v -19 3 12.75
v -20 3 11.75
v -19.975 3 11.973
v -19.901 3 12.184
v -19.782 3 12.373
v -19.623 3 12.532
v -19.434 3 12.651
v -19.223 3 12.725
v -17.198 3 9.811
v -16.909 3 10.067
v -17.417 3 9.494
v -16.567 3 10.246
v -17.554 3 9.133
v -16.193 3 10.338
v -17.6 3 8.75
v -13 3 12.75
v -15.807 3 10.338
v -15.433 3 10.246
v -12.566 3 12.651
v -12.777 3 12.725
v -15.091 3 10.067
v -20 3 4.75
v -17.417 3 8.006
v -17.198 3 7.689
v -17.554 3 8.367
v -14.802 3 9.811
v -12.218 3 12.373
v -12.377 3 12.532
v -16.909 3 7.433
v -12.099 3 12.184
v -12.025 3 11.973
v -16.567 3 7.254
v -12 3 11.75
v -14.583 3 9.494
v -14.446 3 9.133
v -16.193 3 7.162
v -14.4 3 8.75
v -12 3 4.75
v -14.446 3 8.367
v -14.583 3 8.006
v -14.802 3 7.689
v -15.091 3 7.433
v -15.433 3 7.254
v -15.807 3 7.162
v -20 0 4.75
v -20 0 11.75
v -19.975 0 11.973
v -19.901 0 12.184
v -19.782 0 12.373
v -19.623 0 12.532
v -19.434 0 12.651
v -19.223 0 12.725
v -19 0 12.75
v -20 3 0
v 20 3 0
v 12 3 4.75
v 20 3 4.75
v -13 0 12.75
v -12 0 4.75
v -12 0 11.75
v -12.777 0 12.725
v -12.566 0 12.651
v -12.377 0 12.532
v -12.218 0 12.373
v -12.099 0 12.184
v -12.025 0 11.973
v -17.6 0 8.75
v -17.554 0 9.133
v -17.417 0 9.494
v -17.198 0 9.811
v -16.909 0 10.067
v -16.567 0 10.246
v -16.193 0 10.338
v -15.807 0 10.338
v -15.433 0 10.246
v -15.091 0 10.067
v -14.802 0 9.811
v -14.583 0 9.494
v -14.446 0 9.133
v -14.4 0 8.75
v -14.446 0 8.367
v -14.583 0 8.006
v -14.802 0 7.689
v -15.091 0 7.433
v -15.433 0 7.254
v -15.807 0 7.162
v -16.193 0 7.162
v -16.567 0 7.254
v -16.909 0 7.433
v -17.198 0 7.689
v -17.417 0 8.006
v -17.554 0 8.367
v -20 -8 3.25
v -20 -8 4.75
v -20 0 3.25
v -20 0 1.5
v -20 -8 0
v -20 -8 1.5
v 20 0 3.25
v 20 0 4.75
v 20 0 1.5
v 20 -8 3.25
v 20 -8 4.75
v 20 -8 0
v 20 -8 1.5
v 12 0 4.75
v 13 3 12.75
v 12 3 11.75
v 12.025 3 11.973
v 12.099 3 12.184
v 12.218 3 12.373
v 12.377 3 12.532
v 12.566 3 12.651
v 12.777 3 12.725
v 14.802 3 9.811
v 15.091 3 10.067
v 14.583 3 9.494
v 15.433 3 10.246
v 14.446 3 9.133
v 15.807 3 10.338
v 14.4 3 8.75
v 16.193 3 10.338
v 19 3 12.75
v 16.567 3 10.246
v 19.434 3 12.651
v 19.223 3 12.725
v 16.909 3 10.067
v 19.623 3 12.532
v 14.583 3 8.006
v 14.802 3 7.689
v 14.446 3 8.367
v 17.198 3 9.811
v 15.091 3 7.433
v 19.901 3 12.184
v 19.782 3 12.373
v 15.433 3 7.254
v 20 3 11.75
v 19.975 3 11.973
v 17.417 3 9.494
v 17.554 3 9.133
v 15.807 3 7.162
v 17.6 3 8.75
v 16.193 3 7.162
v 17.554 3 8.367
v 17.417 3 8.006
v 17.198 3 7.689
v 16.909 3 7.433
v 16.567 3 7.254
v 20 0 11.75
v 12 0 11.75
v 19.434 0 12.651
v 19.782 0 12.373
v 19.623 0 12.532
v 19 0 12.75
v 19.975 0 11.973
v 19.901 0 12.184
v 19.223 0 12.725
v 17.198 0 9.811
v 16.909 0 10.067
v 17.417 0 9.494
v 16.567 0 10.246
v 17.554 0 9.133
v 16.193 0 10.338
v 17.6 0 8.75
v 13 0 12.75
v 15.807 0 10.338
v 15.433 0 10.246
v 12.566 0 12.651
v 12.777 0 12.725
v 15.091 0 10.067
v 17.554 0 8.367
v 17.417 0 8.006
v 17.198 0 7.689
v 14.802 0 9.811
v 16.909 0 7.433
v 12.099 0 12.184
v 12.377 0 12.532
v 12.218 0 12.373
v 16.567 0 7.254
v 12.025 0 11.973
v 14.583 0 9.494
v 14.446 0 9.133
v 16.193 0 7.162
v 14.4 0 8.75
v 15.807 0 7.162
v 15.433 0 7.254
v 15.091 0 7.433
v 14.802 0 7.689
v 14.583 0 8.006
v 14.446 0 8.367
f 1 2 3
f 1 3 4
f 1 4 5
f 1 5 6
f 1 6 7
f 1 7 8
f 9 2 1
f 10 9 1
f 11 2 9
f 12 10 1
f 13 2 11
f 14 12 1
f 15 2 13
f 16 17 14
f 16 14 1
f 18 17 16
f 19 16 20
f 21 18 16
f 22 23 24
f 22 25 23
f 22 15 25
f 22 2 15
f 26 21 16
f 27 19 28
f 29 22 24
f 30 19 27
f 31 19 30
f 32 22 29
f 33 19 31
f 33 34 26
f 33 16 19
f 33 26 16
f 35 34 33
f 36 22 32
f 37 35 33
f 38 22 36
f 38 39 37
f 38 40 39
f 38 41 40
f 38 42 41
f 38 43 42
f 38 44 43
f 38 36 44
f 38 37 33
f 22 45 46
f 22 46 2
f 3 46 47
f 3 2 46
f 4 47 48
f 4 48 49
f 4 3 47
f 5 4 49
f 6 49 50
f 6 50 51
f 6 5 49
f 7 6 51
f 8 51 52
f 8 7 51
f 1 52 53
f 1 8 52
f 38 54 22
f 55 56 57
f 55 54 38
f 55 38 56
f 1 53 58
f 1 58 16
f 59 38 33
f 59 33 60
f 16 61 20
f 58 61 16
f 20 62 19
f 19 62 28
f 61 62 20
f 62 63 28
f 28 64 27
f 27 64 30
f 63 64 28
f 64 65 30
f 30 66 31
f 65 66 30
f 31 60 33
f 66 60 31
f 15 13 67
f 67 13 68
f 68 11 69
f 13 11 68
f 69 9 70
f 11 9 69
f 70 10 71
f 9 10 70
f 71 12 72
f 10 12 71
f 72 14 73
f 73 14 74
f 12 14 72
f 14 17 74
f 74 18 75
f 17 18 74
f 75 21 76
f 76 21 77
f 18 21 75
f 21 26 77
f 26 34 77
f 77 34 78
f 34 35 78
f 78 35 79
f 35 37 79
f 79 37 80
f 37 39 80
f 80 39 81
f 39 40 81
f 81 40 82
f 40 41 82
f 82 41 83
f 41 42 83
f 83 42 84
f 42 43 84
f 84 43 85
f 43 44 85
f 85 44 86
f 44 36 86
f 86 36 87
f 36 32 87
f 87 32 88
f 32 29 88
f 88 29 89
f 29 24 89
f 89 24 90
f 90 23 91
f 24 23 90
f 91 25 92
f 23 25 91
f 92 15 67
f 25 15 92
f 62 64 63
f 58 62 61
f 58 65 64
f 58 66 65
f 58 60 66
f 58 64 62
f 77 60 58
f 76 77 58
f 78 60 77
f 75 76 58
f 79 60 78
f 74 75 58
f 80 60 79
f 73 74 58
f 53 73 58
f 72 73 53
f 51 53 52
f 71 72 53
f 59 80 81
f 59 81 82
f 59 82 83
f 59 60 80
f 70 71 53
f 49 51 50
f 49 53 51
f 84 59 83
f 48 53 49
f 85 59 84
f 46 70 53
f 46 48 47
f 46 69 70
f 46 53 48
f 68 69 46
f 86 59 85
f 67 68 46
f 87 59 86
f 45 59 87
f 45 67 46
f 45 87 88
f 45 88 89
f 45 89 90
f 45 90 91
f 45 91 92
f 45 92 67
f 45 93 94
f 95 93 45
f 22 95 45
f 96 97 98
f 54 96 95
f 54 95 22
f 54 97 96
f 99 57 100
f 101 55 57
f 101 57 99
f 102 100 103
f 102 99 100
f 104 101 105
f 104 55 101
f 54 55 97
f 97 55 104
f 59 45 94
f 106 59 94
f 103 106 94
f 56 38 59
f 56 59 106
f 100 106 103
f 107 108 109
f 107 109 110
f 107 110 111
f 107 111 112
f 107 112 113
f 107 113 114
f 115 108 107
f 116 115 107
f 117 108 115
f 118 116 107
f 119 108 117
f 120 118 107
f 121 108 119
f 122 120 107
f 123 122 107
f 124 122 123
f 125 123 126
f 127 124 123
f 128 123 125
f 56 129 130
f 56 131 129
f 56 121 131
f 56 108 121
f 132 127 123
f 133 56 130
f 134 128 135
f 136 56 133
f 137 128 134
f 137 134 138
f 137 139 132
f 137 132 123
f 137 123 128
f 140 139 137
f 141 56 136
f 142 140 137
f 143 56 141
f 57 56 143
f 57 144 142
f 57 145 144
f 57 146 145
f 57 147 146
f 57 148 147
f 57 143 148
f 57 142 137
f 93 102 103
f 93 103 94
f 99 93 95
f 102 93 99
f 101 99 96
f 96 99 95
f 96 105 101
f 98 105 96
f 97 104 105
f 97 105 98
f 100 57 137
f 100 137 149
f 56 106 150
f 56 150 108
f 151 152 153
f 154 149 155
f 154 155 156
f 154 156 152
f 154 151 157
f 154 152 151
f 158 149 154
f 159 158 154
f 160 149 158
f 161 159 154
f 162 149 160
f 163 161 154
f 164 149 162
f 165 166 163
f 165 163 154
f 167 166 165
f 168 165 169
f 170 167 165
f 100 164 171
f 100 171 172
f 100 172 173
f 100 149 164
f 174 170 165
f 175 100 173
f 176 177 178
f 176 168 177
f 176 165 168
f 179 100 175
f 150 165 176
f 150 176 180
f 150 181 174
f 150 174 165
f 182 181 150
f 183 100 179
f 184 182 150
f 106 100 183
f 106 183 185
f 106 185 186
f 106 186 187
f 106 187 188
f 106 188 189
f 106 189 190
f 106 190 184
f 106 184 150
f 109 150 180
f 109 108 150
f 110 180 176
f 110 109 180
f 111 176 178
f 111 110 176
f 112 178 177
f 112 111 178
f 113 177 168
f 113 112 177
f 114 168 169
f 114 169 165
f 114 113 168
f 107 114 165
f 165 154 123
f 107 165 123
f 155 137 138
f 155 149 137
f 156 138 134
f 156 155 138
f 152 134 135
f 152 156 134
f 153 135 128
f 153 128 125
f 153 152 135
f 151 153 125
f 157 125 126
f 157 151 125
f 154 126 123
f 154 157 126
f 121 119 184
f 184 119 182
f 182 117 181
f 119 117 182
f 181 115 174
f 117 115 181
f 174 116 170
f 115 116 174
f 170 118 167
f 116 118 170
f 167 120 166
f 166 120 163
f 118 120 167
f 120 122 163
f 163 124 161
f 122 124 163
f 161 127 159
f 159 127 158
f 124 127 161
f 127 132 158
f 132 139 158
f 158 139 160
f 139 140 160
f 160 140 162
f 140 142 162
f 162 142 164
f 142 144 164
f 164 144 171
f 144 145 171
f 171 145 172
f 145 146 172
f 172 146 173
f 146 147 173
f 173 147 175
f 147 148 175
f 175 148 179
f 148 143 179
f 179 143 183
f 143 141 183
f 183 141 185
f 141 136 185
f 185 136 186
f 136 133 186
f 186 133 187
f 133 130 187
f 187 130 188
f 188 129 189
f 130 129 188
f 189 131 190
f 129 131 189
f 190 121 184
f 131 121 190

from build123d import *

# Parameters (mm, degrees)
SKETCH_W        = 40
SKETCH_H        = 11
PAD_DEPTH       = 4.75
SKETCH001_W     = 40
SKETCH001_H     = 1.75
POCKET_DEPTH    = 8
SKETCH002_W     = 8
SKETCH002_H     = 3
PAD001_DEPTH    = 8
SKETCH004_R     = 1.6
POCKET001_DEPTH = 11.001
FILLET_R        = 1


with BuildPart() as part:
    # Sketch → Pad (new body)
    with BuildSketch(Plane.XY):
        with Locations((0, -2.5)):
            Rectangle(SKETCH_W, SKETCH_H)
    extrude(amount=PAD_DEPTH)

    # Sketch001 (on Face3 of Pad) → Pocket (cut)
    with BuildSketch(Plane.XZ.offset(8)):
        with Locations((0, 2.375)):
            Rectangle(SKETCH001_W, SKETCH001_H)
    extrude(amount=-POCKET_DEPTH, mode=Mode.SUBTRACT)

    # Sketch002 (on Face5 of Pocket) → Pad001 (join)
    with BuildSketch(Plane.XY.offset(4.75)):
        with Locations((-16, 1.5)):
            Rectangle(SKETCH002_W, SKETCH002_H)
        with Locations((16, 1.5)):
            Rectangle(SKETCH002_W, SKETCH002_H)
    extrude(amount=PAD001_DEPTH)

    # Sketch004 (on Face7 of Pad001) → Pocket001 (cut, through all)
    with BuildSketch(Plane(origin=(0, 3, 0), x_dir=(-1, 0, 0), z_dir=(0, 1, 0))):
        with Locations((-16, 8.75)):
            Circle(SKETCH004_R)
        with Locations((16, 8.75)):
            Circle(SKETCH004_R)
    extrude(amount=-POCKET001_DEPTH, mode=Mode.SUBTRACT)

    # Fillet
    fillet_edges = [part.edges().sort_by_distance(p)[0] for p in [
        (20, 1.5, 12.75),
        (12, 1.5, 12.75),
        (-12, 1.5, 12.75),
        (-20, 1.5, 12.75),
    ]]
    fillet(fillet_edges, radius=FILLET_R)


solid = part.part
